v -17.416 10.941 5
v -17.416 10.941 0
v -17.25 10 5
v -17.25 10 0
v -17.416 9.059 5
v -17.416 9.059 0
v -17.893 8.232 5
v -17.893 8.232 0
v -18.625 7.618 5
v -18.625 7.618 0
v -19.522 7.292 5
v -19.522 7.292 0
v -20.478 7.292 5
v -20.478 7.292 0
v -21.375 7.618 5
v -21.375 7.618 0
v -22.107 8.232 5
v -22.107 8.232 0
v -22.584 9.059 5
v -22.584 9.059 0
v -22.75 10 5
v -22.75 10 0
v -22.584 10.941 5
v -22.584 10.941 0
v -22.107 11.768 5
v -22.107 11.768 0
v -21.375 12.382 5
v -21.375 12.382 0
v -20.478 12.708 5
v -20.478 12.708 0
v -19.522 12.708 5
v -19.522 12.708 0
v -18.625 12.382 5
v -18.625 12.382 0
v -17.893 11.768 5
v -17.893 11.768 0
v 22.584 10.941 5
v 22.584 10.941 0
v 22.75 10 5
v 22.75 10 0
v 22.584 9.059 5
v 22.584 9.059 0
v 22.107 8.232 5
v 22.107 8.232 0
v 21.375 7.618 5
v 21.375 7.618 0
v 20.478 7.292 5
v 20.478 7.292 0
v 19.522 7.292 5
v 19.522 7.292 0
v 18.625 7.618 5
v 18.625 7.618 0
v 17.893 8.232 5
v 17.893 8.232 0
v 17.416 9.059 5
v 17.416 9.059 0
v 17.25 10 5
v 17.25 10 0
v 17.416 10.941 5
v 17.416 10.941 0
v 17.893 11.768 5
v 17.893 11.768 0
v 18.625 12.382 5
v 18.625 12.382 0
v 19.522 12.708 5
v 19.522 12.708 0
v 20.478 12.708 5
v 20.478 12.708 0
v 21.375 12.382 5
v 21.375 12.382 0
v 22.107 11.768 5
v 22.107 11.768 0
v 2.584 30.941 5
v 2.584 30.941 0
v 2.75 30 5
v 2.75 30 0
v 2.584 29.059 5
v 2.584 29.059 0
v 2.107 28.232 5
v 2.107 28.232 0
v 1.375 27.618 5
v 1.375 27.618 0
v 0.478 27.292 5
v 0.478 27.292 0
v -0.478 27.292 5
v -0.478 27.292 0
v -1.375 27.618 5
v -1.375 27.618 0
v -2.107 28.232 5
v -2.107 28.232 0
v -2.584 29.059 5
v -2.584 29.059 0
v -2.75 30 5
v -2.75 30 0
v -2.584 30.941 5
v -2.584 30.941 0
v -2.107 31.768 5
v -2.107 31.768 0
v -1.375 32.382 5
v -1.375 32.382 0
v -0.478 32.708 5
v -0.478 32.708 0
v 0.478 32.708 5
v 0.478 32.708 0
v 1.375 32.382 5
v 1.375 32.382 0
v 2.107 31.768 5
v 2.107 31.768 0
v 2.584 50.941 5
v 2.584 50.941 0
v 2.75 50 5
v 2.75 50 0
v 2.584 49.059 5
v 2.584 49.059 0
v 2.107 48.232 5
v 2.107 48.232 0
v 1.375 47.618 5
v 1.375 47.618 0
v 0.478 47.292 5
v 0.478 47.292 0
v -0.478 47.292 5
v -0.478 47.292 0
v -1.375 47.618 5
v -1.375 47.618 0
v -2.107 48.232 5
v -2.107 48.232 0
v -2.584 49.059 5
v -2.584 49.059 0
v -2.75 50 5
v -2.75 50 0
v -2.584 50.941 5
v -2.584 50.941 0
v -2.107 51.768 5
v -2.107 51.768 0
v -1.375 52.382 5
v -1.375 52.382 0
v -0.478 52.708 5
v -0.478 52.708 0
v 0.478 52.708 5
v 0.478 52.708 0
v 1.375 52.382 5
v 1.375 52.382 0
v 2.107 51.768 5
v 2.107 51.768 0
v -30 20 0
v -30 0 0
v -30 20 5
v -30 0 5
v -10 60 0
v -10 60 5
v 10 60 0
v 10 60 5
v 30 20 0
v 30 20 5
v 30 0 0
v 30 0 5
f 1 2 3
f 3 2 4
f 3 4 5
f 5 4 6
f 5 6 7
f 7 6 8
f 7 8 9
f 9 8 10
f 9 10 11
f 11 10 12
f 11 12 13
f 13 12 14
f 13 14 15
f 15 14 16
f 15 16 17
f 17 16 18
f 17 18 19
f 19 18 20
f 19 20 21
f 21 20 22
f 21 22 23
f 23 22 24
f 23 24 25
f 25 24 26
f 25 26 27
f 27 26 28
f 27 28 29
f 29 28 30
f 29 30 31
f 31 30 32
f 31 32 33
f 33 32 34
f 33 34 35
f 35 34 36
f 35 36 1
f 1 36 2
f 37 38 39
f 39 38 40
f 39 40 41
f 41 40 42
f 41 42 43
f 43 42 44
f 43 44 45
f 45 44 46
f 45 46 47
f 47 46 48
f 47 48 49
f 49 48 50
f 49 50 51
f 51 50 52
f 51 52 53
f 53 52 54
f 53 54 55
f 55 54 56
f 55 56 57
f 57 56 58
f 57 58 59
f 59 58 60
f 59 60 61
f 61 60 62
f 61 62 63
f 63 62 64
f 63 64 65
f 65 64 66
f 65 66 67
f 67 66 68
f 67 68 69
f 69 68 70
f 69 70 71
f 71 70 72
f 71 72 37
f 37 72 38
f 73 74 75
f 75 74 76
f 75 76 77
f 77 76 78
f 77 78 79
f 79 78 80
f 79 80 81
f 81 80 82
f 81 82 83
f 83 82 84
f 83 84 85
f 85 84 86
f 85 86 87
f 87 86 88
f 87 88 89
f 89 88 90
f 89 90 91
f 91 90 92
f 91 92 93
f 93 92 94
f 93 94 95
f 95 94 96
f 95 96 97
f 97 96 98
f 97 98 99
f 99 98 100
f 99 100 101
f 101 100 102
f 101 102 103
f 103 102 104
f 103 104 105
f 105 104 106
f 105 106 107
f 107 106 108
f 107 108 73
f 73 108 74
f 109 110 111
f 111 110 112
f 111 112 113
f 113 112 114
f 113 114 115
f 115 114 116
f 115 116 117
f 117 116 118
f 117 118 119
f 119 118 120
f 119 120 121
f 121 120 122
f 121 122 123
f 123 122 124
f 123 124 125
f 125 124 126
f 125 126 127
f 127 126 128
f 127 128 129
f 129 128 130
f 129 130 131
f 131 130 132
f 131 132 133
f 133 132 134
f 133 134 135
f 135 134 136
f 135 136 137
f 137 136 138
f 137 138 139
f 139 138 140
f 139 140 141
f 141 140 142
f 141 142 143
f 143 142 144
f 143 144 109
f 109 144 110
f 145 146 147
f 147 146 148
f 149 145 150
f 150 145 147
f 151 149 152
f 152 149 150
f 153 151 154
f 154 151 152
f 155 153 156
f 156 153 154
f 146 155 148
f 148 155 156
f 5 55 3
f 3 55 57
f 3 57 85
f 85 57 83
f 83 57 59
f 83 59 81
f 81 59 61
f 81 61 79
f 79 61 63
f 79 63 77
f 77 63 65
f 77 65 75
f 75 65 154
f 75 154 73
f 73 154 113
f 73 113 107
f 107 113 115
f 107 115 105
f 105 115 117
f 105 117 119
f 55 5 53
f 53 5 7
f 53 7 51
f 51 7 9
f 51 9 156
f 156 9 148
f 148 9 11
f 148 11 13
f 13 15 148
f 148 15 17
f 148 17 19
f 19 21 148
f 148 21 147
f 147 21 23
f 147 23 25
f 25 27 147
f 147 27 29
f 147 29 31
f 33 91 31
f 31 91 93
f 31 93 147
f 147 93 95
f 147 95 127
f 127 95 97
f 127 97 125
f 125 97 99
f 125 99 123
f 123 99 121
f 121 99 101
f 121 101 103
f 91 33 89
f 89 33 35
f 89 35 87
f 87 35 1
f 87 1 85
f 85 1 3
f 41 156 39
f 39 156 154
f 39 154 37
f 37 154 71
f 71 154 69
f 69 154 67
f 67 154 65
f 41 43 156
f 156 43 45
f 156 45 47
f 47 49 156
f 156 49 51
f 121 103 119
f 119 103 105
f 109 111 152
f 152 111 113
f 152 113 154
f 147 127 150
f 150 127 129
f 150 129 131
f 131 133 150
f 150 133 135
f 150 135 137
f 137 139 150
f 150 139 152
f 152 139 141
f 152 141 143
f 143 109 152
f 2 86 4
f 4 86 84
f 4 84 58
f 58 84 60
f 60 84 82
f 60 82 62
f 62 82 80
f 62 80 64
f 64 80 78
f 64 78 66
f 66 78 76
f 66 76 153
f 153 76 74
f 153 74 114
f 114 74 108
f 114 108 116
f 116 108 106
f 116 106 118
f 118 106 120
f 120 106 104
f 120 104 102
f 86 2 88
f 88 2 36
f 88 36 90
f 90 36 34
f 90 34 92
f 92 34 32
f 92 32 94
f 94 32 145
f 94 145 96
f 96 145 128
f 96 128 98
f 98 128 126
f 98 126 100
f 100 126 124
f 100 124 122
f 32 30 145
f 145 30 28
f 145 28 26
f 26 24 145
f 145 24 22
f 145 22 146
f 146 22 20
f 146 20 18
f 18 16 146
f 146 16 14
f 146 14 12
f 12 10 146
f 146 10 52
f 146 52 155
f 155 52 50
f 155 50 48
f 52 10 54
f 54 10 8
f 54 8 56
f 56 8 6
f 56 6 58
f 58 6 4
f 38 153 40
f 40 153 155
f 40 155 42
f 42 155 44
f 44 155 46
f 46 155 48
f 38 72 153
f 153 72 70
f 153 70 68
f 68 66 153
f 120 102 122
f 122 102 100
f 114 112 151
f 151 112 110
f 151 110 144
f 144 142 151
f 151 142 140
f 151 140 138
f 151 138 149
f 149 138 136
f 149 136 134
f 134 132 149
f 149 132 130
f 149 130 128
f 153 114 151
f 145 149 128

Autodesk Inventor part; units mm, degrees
ref_plane "YZ Plane" through (0, 0, 0) normal (1, 0, 0) x (0, 1, 0)
ref_plane "XZ Plane" through (0, 0, 0) normal (0, 1, 0) x (-1, 0, 0)
ref_plane "XY Plane" through (0, 0, 0) normal (0, 0, 1) x (1, 0, 0)
sketch "Sketch1" plane through (0, 0, 0) normal (0, 0, 1) x (1, 0, 0)
  line L0 (-30, 0) -> (30, 0)
  line L1 (30, 0) -> (30, 20)
  line L2 (30, 20) -> (10, 60)
  line L3 (10, 60) -> (-10, 60)
  line L4 (-10, 60) -> (-30, 20)
  line L5 (-30, 20) -> (-30, 0)
  circle A0 centre (0, 50) radius 2.75
  circle A1 centre (0, 30) radius 2.75
  circle A2 centre (20, 10) radius 2.75
  circle A3 centre (-20, 10) radius 2.75
  point P0 (0, 0)
  point P1 (0, 0)
  point P2 (0, 60)
  dimension "d0" = 60
  dimension "d1" = 60
  dimension "d2" = 20
  dimension "d3" = 20
  dimension "d4" = 5.5
  dimension "d5" = 10
  dimension "d6" = 20
  dimension "d7" = 10
  dimension "d8" = 10
  dimension "d9" = 10
extrude "Extrusion1" add sketch "Sketch1" along normal blind 5
properties part number "SupportCR-10-Mini"
